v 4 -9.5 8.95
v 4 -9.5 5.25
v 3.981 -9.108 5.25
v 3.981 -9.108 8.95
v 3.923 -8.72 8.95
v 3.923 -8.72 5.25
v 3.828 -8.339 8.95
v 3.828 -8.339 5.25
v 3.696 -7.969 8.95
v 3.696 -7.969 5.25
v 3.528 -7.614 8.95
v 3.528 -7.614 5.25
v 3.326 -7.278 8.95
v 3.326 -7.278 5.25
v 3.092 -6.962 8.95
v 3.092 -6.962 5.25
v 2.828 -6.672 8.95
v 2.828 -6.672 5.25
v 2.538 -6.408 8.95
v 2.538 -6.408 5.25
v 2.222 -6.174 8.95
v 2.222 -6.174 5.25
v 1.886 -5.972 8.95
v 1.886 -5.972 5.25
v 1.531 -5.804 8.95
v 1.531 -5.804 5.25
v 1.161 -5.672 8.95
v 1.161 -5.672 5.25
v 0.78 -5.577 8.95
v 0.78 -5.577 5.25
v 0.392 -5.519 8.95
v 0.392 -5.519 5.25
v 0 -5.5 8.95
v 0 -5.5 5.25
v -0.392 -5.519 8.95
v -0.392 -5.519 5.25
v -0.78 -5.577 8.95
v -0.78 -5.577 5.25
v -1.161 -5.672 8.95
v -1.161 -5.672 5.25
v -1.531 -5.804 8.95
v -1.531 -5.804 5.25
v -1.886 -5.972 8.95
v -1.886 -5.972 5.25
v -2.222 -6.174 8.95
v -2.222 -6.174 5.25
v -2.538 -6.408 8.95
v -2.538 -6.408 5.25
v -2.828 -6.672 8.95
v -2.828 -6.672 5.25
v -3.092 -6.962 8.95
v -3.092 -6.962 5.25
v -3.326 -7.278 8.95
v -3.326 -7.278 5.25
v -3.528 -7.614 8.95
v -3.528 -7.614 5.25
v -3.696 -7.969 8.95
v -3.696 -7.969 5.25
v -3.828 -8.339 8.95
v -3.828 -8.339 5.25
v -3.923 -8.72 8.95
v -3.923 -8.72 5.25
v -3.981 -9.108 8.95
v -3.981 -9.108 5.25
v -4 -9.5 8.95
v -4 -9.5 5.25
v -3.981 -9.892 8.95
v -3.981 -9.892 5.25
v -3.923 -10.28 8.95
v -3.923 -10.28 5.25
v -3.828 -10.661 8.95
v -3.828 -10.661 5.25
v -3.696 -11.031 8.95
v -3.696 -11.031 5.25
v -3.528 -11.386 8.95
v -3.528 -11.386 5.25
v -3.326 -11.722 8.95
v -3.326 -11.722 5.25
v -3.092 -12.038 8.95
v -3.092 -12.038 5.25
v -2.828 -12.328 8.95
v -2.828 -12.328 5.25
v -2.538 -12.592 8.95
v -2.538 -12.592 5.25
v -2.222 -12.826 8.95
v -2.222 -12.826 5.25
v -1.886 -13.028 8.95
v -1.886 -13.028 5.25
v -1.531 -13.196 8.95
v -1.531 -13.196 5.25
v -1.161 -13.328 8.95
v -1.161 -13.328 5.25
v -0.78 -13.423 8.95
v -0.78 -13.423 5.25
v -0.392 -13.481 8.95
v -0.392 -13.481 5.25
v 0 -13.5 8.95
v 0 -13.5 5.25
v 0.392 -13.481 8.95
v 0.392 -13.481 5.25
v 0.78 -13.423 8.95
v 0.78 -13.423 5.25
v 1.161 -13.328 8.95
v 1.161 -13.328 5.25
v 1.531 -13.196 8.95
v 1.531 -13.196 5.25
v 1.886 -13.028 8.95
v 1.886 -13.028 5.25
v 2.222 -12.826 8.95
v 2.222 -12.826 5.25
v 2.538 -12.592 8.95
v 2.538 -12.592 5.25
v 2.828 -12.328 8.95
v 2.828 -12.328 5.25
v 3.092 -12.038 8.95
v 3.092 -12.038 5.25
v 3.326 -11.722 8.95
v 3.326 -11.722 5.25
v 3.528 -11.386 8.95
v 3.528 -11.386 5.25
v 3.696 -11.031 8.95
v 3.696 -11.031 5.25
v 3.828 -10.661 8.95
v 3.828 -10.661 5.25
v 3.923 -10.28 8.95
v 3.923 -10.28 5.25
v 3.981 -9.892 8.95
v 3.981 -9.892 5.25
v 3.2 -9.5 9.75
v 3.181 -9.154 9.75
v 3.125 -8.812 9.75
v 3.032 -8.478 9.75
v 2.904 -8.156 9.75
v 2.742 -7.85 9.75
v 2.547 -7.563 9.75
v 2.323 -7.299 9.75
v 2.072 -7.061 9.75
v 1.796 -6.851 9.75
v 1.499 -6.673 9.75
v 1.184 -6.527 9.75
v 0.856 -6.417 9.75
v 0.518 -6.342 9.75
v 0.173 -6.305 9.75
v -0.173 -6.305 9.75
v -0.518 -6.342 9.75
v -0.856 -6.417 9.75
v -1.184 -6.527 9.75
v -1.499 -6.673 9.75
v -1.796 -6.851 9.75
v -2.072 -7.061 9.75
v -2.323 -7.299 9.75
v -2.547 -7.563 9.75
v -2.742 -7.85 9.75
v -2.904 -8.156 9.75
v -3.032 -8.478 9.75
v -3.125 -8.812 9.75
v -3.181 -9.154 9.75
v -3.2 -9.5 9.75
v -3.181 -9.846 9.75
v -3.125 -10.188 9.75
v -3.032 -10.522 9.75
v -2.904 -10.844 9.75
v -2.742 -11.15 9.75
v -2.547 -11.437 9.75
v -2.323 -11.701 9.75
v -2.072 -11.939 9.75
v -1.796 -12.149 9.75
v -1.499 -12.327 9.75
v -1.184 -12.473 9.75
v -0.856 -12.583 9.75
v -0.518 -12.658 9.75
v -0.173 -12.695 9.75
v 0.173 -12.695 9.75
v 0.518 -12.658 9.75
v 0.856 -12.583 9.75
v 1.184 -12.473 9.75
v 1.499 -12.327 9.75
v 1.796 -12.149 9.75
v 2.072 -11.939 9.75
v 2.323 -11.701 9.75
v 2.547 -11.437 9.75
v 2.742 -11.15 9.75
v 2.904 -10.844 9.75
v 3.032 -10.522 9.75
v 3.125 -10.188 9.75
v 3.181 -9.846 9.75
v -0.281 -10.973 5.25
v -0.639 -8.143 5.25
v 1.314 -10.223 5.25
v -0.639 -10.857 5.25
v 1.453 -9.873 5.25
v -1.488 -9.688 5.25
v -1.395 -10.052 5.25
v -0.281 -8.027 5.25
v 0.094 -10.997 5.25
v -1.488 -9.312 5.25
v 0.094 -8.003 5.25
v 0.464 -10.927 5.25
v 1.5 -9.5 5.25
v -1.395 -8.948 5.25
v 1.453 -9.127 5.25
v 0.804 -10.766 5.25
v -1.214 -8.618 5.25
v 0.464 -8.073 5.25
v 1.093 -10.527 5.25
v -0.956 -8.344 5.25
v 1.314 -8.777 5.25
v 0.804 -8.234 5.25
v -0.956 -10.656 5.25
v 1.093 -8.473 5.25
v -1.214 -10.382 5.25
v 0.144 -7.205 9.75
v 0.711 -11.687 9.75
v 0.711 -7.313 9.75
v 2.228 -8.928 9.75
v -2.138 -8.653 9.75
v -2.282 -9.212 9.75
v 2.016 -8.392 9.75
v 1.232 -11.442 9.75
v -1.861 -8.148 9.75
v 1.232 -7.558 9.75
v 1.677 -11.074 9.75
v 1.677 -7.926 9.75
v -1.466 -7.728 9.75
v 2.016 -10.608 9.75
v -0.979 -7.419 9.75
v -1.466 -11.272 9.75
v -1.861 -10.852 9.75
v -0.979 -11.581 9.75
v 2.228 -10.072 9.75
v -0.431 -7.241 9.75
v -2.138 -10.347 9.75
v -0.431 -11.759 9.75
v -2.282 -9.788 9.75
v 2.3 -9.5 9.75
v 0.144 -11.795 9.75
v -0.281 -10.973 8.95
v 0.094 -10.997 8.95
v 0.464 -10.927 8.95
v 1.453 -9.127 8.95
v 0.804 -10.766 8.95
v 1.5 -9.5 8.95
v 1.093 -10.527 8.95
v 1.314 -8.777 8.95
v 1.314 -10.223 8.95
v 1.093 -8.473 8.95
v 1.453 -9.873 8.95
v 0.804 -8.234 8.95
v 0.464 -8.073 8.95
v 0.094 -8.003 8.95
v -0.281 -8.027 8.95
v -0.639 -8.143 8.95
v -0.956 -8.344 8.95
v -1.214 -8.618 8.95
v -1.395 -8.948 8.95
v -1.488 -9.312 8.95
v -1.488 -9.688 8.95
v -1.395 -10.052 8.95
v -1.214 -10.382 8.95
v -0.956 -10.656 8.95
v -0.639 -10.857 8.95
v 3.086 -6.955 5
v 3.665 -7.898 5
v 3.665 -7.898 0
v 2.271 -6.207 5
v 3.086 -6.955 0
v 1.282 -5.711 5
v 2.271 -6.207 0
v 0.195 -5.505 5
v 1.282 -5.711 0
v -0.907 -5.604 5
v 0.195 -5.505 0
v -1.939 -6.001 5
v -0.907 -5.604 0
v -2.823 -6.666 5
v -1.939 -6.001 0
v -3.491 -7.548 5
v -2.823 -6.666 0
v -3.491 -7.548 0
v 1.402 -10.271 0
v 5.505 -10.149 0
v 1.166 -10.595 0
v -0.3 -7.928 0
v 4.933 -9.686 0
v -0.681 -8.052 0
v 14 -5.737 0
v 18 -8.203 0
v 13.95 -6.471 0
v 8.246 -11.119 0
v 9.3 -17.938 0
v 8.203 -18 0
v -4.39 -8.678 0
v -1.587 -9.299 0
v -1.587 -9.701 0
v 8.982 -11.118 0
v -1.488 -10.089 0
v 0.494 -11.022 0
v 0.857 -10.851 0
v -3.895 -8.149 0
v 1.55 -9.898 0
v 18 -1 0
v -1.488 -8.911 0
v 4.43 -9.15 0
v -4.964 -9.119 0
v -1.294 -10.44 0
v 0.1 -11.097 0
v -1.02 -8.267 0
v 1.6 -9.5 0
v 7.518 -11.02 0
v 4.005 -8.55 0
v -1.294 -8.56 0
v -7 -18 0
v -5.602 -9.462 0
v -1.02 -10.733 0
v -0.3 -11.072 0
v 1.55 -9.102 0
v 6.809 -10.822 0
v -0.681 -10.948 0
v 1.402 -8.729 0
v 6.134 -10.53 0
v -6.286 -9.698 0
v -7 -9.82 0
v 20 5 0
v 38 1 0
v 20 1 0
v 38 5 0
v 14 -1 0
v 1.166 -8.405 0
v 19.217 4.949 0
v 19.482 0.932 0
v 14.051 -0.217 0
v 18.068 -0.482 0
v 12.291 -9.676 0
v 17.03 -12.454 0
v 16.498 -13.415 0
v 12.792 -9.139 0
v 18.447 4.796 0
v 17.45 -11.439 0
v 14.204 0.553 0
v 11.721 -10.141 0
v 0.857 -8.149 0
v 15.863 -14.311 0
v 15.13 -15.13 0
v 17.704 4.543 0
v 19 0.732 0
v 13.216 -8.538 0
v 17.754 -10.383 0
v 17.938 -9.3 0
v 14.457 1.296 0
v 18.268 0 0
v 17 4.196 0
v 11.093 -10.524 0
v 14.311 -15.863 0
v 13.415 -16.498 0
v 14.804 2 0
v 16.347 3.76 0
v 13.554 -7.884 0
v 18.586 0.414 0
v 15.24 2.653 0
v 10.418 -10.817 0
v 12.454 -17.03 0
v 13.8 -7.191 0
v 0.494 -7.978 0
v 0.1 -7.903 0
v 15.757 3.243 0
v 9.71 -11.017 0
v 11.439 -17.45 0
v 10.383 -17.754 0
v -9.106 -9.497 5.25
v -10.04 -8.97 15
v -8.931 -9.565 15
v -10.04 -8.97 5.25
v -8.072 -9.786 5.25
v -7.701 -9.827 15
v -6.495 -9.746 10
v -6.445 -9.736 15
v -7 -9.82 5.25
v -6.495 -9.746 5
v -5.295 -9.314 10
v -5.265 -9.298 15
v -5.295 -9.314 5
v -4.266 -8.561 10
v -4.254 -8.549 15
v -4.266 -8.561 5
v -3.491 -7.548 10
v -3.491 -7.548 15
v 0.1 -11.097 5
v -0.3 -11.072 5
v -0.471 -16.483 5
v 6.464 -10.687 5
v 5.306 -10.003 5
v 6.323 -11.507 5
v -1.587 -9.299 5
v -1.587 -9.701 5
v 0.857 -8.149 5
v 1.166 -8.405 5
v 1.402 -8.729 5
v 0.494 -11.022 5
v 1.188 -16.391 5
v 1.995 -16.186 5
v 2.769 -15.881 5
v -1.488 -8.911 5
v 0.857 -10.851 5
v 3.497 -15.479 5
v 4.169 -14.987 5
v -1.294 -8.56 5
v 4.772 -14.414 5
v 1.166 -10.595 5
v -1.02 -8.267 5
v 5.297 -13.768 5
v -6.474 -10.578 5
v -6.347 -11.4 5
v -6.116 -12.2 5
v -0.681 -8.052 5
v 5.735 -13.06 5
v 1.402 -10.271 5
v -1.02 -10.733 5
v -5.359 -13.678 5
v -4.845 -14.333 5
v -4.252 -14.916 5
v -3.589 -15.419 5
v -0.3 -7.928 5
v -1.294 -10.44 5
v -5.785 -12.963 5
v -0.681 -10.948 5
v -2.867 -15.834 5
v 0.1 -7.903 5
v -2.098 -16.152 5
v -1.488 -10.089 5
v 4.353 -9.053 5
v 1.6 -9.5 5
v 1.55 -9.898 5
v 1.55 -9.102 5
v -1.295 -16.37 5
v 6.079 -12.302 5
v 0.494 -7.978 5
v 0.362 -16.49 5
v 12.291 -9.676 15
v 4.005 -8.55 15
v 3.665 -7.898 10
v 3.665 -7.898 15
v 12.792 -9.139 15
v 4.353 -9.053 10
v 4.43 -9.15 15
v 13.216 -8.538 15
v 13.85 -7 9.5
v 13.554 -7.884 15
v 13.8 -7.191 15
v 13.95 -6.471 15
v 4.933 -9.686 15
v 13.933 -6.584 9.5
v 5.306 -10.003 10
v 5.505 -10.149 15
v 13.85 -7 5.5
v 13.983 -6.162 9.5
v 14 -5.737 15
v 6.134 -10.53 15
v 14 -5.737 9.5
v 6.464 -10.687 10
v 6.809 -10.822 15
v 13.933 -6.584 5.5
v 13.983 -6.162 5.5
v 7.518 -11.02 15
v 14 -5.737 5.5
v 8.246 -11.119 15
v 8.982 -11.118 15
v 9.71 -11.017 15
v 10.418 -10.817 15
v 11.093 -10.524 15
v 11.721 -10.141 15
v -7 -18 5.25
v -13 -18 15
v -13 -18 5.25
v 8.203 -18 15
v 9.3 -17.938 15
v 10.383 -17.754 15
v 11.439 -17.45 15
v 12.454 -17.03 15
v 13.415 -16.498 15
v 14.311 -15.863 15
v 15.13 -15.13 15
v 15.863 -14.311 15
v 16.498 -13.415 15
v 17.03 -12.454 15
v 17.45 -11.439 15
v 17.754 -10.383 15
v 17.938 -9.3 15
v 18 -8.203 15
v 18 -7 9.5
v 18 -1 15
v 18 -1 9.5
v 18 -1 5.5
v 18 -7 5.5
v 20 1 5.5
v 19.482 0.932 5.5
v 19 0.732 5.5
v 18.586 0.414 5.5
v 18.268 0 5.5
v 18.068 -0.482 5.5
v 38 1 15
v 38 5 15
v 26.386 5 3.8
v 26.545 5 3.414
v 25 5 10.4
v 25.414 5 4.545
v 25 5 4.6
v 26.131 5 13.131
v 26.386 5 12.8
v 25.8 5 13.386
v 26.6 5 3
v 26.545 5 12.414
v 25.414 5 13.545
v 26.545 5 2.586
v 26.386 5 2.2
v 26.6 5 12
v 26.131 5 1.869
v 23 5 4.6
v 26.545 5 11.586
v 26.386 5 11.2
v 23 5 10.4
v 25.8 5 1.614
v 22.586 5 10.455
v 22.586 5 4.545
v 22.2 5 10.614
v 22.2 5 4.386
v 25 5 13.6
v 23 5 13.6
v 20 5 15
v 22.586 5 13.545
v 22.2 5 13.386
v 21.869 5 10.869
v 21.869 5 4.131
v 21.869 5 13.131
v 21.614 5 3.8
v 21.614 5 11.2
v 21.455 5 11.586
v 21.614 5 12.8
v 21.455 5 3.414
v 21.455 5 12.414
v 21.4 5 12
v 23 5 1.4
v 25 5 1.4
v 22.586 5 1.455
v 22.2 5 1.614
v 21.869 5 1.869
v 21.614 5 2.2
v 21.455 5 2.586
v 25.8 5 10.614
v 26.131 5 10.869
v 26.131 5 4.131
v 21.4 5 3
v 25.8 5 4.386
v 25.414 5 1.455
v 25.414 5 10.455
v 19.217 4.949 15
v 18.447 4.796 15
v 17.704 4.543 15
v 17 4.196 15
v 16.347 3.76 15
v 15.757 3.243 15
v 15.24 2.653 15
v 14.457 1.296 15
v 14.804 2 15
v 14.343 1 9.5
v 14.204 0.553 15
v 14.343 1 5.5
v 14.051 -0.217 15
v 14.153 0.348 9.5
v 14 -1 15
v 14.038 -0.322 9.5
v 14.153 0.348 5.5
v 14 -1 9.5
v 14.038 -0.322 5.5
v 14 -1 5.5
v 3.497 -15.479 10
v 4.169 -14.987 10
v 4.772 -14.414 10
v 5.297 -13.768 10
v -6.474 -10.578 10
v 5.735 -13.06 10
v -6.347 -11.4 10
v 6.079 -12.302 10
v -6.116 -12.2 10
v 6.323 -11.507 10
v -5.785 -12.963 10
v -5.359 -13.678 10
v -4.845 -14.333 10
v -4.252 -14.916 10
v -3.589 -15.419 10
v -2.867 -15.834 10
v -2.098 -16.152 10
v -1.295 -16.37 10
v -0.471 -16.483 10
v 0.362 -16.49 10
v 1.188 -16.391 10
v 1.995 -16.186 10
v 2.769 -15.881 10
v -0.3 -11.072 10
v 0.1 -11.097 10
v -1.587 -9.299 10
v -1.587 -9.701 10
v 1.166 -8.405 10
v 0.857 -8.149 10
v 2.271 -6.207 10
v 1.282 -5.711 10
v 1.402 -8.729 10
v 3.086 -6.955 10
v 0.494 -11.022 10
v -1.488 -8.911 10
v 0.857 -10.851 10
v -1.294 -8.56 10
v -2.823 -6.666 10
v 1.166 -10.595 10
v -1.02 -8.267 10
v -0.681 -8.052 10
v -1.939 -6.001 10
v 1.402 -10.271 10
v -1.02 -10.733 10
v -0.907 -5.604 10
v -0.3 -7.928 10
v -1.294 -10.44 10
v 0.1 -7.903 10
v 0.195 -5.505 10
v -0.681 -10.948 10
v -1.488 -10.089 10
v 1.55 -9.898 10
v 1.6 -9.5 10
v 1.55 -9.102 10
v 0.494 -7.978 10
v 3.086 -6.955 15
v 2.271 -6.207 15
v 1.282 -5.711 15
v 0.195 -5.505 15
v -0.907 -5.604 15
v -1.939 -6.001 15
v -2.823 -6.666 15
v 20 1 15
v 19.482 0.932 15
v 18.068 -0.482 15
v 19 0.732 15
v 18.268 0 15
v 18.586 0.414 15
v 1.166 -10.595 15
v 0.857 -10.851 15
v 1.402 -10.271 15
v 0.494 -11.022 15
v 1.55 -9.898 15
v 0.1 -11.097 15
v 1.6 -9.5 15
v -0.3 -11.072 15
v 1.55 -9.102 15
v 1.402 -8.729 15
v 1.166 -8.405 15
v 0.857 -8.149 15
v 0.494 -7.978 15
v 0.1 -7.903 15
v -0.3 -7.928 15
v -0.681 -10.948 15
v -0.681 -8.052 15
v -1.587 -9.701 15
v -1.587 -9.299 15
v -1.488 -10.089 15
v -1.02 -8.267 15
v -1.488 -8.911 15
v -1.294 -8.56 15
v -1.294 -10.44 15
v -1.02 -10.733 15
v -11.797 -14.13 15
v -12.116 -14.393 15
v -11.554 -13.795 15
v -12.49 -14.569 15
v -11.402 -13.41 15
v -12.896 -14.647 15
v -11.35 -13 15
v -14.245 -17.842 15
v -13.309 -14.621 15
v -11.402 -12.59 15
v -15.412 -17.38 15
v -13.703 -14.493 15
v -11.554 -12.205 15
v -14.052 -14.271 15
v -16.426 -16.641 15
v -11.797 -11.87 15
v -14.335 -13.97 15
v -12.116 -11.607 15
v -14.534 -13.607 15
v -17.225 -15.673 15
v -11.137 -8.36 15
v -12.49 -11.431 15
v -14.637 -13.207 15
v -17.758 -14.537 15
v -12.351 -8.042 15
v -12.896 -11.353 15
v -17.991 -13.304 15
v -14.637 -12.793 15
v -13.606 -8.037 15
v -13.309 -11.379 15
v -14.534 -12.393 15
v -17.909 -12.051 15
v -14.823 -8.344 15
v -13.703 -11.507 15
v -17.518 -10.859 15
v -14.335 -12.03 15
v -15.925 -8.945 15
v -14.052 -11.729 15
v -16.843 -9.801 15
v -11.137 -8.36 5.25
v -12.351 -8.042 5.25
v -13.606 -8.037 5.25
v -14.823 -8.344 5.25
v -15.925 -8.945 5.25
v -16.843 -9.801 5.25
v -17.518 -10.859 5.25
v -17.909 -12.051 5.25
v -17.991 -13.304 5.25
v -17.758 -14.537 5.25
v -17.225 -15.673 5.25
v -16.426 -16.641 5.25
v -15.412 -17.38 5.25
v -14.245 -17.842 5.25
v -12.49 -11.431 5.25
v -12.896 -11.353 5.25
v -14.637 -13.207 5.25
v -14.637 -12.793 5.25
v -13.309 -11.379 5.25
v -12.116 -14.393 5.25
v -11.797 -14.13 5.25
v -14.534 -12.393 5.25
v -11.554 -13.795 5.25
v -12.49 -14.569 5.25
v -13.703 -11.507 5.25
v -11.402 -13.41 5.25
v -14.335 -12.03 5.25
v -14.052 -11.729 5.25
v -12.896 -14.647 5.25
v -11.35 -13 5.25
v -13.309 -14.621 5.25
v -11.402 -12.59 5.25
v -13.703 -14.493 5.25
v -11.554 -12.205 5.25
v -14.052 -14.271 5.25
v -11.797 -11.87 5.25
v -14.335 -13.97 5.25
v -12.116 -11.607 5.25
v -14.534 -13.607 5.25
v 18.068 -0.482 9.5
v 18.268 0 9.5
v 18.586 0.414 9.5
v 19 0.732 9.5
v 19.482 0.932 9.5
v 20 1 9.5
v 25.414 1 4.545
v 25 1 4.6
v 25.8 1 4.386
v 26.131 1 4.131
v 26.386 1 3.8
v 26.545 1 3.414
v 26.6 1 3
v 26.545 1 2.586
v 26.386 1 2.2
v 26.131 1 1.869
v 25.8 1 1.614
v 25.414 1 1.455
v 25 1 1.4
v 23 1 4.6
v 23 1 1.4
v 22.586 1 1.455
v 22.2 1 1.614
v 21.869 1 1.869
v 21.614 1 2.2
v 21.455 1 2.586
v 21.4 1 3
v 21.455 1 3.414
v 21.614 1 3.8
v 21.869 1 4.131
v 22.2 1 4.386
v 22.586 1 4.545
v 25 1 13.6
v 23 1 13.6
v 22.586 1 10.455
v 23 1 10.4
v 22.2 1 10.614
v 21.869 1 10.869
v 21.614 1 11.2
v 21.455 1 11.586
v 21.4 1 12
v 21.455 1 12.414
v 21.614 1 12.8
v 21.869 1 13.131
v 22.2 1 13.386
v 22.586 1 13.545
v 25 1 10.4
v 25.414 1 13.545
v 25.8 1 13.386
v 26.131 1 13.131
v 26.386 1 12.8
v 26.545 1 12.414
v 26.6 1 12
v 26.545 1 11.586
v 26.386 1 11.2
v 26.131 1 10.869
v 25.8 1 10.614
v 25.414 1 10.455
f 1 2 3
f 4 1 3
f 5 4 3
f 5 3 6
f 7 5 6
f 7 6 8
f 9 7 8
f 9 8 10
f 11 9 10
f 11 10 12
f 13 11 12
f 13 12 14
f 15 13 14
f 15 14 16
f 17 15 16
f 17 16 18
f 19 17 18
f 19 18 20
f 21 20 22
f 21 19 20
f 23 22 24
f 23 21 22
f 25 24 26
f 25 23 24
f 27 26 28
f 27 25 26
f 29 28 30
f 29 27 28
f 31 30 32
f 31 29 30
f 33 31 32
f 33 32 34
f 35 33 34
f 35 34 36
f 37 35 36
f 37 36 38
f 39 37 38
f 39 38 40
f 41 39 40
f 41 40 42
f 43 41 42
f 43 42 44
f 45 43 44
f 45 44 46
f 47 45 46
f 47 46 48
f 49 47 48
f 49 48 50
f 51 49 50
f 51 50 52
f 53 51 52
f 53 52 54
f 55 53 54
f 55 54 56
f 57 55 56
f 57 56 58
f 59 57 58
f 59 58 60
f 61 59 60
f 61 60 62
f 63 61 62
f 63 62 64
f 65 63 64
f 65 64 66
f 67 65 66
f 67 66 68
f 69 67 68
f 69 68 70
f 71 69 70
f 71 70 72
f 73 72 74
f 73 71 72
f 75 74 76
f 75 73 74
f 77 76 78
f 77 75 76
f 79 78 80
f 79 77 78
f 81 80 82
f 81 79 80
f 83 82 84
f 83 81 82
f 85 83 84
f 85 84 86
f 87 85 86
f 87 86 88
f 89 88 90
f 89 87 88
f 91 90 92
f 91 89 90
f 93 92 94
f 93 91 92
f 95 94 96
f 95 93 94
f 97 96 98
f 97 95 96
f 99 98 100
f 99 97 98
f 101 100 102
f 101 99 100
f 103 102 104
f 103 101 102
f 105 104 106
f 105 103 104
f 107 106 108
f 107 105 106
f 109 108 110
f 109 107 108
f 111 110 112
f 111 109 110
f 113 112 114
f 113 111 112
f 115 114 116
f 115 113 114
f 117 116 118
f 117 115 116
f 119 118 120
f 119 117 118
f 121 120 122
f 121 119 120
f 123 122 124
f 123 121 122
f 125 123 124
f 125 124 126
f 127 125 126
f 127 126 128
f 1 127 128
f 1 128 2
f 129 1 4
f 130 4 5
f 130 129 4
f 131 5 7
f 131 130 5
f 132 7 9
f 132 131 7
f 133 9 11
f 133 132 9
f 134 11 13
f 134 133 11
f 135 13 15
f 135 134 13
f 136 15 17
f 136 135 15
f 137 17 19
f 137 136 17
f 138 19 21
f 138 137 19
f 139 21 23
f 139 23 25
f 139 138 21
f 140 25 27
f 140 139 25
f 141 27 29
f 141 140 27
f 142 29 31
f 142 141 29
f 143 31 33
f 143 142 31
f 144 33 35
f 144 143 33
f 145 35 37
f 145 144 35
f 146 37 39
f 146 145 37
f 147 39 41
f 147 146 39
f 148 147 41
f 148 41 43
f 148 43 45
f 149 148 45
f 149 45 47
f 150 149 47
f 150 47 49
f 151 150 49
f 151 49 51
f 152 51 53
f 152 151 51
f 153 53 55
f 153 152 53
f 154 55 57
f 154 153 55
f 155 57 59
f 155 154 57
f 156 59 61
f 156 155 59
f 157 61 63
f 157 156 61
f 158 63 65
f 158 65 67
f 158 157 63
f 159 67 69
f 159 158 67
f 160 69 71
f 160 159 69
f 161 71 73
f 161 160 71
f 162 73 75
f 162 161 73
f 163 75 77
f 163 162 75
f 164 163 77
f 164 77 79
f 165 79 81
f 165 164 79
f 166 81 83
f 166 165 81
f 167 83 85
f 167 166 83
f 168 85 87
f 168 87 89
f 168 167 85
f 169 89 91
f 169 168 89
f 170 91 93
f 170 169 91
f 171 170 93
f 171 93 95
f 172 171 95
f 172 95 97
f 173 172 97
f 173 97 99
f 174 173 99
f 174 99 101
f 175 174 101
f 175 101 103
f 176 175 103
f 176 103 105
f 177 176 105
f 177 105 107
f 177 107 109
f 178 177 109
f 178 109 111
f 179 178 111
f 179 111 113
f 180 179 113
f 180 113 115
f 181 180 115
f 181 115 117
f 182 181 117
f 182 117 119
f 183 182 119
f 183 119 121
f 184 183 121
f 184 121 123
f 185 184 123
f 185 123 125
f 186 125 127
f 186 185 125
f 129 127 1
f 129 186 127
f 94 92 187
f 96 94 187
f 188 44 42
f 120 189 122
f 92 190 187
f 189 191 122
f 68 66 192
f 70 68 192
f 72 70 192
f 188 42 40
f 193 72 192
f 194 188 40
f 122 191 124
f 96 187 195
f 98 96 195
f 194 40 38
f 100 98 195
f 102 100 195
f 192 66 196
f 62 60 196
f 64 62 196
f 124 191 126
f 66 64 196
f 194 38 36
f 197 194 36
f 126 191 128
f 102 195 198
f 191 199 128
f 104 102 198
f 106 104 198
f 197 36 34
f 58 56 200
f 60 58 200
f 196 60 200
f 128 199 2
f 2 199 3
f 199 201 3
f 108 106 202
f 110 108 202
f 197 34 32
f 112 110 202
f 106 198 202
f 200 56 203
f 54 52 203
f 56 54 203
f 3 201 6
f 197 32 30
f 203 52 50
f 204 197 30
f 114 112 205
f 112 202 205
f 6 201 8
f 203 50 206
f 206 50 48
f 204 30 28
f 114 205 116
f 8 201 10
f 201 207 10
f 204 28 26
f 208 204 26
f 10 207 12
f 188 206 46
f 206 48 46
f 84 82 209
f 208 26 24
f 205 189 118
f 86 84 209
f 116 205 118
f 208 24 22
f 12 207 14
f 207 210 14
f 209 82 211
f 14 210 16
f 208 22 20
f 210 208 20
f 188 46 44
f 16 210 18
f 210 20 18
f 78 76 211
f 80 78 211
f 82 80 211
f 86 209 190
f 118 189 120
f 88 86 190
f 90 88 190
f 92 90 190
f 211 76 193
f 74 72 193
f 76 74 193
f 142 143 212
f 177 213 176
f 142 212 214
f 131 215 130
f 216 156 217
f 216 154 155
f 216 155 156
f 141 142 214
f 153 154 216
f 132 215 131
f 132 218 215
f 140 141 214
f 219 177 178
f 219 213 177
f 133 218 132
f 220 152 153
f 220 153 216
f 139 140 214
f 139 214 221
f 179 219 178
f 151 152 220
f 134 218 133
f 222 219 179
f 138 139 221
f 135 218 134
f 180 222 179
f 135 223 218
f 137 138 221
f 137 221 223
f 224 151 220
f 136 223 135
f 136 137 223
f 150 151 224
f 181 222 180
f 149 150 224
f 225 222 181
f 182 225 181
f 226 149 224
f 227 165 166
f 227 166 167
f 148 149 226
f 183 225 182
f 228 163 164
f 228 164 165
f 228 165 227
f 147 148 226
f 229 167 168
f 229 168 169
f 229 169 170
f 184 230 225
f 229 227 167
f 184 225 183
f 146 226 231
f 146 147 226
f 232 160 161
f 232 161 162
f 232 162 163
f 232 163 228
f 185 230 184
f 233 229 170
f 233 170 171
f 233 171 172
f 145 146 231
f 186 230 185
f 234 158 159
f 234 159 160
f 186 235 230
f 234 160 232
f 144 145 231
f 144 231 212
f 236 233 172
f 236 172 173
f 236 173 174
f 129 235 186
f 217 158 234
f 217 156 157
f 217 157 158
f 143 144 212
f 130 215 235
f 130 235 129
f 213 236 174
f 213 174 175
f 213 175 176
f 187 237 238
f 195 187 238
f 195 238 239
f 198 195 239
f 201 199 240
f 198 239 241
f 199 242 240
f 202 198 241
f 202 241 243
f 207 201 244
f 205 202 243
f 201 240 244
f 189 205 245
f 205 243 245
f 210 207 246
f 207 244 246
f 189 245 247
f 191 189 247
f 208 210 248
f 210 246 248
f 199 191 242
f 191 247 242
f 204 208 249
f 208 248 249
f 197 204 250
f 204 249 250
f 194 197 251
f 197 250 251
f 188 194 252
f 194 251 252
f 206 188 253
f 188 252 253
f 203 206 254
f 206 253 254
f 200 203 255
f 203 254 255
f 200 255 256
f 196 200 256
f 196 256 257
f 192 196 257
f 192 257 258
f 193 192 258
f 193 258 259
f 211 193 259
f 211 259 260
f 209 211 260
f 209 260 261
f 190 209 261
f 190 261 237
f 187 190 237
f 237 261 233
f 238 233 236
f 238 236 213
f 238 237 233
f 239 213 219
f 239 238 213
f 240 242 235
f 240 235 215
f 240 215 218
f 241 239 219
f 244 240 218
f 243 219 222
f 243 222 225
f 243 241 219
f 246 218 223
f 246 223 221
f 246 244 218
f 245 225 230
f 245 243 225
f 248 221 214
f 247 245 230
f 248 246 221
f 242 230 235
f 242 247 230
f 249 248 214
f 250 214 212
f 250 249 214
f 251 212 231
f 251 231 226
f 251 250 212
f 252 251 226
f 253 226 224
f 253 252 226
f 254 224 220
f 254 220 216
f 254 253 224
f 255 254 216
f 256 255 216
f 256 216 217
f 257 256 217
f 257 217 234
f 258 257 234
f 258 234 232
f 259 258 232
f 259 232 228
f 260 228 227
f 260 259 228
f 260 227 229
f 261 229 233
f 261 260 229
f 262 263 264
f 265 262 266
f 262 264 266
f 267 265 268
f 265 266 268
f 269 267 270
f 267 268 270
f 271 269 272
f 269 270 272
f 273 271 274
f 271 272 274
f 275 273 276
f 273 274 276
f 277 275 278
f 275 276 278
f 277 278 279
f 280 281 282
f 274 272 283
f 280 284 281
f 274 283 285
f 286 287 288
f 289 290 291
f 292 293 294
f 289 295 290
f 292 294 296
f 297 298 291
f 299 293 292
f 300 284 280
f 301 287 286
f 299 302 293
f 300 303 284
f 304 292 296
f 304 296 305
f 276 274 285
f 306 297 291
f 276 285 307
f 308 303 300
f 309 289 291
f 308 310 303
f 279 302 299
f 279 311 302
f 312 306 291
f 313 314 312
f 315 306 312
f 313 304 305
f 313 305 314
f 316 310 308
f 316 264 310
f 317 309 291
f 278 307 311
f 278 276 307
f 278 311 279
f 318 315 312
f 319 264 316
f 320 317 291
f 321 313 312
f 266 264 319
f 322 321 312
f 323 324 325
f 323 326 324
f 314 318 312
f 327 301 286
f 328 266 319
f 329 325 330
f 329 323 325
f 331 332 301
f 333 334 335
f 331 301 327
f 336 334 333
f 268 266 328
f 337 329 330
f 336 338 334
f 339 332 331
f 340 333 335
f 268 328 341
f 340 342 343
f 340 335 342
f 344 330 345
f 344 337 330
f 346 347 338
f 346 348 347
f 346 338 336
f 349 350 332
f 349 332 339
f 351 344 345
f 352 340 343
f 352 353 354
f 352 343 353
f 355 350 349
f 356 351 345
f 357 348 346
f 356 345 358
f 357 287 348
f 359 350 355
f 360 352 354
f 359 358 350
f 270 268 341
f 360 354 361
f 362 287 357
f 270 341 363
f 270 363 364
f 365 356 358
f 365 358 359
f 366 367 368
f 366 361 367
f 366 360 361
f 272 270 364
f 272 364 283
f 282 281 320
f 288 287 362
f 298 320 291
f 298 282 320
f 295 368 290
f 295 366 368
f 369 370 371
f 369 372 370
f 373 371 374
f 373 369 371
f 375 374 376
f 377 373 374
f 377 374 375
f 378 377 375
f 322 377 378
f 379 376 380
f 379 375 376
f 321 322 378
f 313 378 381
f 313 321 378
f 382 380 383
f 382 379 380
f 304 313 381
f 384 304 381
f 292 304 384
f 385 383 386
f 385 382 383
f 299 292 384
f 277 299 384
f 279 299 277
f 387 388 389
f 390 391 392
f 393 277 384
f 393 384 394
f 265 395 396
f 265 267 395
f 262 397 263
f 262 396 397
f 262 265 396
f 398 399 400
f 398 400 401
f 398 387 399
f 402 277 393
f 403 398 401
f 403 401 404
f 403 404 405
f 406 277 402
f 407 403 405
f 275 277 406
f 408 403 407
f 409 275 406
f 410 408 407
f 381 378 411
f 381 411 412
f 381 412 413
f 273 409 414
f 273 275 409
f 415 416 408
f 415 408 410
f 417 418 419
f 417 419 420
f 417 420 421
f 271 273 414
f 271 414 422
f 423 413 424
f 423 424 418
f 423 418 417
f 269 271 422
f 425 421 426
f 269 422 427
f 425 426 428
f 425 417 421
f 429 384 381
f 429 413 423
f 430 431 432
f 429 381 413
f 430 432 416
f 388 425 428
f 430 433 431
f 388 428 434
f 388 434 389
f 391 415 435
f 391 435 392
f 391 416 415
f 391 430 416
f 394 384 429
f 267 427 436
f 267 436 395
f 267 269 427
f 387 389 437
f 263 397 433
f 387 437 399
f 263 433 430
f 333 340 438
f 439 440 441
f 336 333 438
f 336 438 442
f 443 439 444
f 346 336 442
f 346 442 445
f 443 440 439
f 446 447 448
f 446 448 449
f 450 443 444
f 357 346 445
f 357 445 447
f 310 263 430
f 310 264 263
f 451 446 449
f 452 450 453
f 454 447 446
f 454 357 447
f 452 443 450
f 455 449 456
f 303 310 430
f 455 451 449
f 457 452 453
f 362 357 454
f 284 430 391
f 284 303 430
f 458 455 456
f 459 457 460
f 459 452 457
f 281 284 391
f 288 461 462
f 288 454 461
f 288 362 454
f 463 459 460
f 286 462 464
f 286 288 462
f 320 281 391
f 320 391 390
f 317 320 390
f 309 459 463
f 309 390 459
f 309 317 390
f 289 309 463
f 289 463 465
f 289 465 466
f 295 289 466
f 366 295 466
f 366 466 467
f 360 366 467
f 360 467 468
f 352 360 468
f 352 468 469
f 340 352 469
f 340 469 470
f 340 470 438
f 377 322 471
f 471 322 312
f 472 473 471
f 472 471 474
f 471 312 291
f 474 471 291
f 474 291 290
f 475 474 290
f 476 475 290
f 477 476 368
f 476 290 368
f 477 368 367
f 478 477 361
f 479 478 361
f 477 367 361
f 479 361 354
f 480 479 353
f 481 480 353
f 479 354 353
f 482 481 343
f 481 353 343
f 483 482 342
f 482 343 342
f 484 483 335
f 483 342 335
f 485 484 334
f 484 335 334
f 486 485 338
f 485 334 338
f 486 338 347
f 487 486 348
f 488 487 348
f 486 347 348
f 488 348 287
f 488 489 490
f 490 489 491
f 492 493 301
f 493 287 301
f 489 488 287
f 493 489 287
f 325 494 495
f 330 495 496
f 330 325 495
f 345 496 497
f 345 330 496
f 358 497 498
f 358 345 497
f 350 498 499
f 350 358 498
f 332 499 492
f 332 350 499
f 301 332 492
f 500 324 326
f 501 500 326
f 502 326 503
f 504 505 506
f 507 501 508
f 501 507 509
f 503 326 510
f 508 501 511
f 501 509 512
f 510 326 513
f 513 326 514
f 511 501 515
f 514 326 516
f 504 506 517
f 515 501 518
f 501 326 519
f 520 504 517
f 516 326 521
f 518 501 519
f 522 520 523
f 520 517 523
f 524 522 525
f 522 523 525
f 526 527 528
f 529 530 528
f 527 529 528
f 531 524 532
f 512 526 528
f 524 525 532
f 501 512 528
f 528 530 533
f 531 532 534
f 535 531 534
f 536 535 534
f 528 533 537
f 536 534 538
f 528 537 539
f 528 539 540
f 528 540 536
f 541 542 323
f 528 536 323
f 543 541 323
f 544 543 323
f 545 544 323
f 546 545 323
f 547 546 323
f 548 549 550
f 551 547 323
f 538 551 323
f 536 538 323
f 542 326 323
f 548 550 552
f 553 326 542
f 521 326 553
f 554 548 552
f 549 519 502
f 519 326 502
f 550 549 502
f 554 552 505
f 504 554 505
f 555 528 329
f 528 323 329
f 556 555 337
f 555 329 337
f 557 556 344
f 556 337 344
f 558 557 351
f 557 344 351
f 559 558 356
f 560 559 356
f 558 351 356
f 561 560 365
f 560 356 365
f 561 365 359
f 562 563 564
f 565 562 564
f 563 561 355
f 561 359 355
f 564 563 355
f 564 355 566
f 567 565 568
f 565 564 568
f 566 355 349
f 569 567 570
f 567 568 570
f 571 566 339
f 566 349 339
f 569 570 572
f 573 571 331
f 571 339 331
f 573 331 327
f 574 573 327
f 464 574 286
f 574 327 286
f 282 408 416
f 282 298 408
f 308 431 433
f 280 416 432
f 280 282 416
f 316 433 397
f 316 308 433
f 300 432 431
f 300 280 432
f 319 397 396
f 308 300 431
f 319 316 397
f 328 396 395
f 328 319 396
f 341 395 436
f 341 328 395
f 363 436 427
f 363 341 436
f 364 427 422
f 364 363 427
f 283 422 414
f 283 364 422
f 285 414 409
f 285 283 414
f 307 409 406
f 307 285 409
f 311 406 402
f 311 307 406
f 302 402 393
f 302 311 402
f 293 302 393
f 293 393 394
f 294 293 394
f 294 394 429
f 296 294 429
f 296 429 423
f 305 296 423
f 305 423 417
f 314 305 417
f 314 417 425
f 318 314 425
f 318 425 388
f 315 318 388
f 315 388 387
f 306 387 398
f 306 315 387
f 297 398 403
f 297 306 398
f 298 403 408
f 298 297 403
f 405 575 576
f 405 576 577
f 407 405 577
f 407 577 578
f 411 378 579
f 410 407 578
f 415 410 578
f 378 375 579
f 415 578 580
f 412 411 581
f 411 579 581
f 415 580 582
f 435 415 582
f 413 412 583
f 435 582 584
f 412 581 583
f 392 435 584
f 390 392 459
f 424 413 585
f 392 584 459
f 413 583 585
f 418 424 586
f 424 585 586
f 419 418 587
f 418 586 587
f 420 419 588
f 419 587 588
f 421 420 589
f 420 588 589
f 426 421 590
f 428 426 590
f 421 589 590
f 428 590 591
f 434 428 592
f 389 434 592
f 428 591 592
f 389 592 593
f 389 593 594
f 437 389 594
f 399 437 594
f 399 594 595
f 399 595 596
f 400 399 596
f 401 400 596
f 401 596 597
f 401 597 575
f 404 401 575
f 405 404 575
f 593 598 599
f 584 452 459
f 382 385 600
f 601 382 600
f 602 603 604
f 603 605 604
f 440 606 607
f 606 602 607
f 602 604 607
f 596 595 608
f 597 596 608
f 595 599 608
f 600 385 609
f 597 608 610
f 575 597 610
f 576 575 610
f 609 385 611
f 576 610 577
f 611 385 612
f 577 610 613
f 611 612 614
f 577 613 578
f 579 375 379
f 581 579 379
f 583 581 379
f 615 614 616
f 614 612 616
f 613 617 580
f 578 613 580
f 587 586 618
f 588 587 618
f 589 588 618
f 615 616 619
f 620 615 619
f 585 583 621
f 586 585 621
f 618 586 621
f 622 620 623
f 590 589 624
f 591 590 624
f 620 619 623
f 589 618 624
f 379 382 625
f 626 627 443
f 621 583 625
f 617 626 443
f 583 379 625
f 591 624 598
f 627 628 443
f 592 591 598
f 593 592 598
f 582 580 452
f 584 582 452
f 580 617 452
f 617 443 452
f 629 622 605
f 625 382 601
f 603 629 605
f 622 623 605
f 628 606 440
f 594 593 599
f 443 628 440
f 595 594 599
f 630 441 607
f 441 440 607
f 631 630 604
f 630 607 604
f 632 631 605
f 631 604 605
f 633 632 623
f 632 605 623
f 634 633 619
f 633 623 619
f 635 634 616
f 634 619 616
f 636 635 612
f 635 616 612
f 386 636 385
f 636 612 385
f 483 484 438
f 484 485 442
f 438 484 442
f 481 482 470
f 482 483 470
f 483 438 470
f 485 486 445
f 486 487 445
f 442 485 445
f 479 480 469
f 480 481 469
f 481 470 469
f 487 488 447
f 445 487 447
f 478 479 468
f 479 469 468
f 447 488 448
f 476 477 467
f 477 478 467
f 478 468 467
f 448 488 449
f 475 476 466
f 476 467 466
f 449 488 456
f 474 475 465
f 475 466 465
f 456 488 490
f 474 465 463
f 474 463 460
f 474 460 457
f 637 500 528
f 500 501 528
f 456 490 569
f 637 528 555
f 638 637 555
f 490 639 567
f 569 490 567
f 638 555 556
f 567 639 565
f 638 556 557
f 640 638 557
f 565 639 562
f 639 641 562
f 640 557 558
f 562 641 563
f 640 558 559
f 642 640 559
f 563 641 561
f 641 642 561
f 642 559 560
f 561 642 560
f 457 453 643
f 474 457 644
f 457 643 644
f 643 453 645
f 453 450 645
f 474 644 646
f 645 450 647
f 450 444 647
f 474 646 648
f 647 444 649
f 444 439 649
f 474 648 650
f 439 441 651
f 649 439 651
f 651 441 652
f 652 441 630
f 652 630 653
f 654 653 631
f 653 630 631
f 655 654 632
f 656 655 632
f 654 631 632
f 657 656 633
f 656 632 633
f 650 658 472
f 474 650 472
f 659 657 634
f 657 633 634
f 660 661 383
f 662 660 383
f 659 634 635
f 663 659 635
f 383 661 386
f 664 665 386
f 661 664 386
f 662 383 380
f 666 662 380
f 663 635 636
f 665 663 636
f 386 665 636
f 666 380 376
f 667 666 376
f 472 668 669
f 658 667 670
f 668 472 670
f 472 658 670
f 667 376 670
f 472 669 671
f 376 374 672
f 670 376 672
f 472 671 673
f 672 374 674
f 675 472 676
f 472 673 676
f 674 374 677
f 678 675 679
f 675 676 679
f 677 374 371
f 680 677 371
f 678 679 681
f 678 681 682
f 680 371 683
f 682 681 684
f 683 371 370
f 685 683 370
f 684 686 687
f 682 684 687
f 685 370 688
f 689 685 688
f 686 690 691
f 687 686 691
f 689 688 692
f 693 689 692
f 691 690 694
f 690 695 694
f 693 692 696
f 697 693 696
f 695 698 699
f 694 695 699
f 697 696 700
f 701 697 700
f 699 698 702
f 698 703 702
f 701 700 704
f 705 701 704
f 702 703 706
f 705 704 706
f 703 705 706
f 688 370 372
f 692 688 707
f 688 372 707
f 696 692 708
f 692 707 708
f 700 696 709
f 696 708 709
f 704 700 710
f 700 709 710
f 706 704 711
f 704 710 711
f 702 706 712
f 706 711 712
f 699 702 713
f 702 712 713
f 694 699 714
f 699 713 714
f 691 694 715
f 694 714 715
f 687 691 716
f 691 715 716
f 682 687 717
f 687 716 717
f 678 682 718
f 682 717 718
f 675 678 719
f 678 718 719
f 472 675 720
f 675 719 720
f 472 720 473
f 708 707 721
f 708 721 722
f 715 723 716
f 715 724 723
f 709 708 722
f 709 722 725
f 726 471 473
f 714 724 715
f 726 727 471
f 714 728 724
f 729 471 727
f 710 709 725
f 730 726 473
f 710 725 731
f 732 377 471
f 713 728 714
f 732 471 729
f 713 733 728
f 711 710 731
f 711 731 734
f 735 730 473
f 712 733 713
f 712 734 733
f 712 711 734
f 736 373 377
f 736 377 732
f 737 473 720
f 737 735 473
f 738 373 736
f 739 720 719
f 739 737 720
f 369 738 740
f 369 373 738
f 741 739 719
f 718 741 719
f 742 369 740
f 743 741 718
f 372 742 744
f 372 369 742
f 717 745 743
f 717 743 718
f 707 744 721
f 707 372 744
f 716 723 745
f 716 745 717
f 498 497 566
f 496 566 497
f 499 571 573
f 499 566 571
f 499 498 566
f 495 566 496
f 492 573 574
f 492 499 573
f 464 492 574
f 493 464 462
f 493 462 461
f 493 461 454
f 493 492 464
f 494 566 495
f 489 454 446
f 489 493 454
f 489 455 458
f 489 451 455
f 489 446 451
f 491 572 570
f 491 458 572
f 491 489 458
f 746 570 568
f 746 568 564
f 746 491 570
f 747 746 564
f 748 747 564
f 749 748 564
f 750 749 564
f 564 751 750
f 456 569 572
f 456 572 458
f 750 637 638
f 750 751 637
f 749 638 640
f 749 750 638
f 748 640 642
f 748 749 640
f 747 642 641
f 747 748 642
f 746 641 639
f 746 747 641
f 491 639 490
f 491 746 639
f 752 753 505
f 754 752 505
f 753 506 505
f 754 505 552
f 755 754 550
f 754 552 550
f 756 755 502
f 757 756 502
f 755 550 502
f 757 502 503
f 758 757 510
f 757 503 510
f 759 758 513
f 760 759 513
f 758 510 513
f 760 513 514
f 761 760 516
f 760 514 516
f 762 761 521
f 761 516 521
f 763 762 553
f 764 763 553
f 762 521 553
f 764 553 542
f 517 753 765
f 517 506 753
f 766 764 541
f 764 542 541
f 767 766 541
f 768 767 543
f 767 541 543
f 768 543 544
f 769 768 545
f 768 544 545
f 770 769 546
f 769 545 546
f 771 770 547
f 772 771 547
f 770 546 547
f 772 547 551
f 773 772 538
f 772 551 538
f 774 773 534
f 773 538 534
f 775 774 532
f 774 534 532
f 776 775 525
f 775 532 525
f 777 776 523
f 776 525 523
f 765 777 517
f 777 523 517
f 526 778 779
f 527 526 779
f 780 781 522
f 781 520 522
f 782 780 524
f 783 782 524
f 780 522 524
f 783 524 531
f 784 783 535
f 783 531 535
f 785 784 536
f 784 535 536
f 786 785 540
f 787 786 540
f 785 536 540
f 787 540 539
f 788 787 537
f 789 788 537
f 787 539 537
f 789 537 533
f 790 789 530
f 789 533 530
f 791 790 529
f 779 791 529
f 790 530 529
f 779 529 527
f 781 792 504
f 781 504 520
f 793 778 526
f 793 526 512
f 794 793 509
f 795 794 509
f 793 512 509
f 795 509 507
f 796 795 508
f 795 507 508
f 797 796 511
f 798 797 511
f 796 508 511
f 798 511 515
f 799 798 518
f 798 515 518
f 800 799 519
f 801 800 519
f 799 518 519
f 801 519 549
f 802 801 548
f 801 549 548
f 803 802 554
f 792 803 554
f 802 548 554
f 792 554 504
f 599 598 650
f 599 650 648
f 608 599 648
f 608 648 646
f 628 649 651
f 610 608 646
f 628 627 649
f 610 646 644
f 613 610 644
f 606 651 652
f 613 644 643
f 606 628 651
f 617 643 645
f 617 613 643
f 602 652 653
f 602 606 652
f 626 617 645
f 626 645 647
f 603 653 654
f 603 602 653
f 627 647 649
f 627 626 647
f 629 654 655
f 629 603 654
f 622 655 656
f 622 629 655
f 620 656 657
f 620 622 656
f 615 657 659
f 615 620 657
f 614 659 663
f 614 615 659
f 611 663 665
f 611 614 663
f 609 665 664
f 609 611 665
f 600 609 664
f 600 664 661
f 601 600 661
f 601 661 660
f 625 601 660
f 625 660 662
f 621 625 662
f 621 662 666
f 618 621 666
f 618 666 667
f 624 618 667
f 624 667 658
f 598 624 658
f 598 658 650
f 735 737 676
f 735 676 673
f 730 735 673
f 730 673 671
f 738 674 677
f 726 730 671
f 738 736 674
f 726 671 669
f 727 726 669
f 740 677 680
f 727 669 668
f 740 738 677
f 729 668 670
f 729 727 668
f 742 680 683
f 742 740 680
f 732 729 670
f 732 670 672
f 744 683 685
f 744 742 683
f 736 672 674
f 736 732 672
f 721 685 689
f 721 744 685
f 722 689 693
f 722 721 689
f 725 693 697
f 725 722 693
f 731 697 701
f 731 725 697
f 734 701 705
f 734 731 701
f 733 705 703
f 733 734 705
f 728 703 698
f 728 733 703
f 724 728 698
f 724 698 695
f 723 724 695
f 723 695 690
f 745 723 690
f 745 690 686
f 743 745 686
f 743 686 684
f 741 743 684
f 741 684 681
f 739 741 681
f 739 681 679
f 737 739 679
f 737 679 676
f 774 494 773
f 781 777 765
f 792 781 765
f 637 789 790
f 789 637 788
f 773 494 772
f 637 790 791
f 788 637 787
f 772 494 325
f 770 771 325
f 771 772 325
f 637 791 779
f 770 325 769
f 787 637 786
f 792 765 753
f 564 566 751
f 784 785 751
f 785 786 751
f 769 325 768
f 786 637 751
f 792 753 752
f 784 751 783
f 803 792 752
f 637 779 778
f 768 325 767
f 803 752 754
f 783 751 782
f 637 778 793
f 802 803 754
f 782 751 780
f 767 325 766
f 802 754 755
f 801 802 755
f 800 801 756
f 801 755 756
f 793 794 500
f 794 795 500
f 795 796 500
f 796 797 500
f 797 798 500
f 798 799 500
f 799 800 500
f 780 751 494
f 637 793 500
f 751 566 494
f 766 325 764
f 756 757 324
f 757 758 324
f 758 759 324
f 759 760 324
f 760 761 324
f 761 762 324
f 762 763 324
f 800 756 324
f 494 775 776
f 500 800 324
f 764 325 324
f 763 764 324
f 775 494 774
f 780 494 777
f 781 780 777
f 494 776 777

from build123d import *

# Parameters (mm, degrees)
CYLINDER_R           = 6.5
CYLINDER_DEPTH       = 5
PAD001_DEPTH         = 5.25
SKETCH_R             = 1.6
SKETCH_R_2           = 1.65
PAD_DEPTH            = 15
POCKET_DEPTH         = 5
SKETCH003_W          = 8
SKETCH003_H          = 4
POCKET001_DEPTH      = 36.001
POCKET001_DEPTH_BACK = -20.001
CYLINDER001_R        = 1.5
CYLINDER001_DEPTH    = 4.5
CYLINDER002_R        = 4
CYLINDER002_DEPTH    = 4.5
CHAMFER_SIZE         = 0.8


with BuildPart() as rodamiento:
    # Cylinder → Cylinder (new body)
    with BuildSketch(Plane(origin=(0, -10, 5), x_dir=(1, 0, 0), z_dir=(0, 0, 1))):
        Circle(CYLINDER_R)
    extrude(amount=CYLINDER_DEPTH)


with BuildPart() as bisagra:
    # Sketch001 → Pad001 (new body)
    with BuildSketch(Plane.XY):
        with BuildLine():
            ThreePointArc((-13, -7), (-19, -13.000015), (-12.99997, -19))
            Line((-7, -19), (-12.99997, -19))
            Line((-7, -7), (-7, -19))
            Line((-13, -7), (-7, -7))
        make_face()
    extrude(amount=PAD001_DEPTH)


with BuildPart() as pocket001:
    # Sketch → Pad (new body)
    with BuildSketch(Plane.XY):
        with BuildLine():
            ThreePointArc((-10.040445, -8.969983), (-17.75132, -11.442772), (-13, -18))
            Line((-13, -18), (8.202725, -18))
            ThreePointArc((8.202725, -18), (15.130445, -15.130444), (18, -8.202724))
            Line((18, -8.202724), (18, -1))
            ThreePointArc((20, 1), (18.585786, 0.414214), (18, -1))
            Line((20, 1), (38, 1))
            Line((38, 1), (38, 5))
            Line((38, 5), (20.000029, 5))
            ThreePointArc((20.000029, 5), (15.757369, 3.24265), (14, -1.000002))
            Line((14, -1.000002), (14, -5.737497))
            ThreePointArc((3.665093, -7.897784), (9.710254, -11.016634), (14, -5.737497))
            ThreePointArc((3.665093, -7.897784), (0.195225, -5.504767), (-3.491422, -7.548085))
            ThreePointArc((-10.040445, -8.969983), (-6.445357, -9.735554), (-3.491422, -7.548085))
        make_face()
        with Locations((0, -9.5)):
            Circle(SKETCH_R, mode=Mode.SUBTRACT)
        with Locations((-13, -13)):
            Circle(SKETCH_R_2, mode=Mode.SUBTRACT)
    extrude(amount=PAD_DEPTH)

    # Cut: cut bisagra
    add(bisagra.part, mode=Mode.SUBTRACT)

    # Cut001: cut rodamiento
    add(rodamiento.part, mode=Mode.SUBTRACT)

    # Sketch002 → Pocket (cut)
    with BuildSketch(Plane(origin=(0, 5, 0), x_dir=(-1, 0, 0), z_dir=(0, 1, 0))):
        with BuildLine():
            ThreePointArc((-25, 13.6), (-26.6, 12), (-25, 10.4))
            Line((-25, 10.4), (-23, 10.4))
            ThreePointArc((-23, 10.4), (-21.4, 12), (-23, 13.6))
            Line((-25, 13.6), (-23, 13.6))
        make_face()
        with BuildLine():
            ThreePointArc((-25, 4.6), (-26.6, 3), (-25, 1.4))
            Line((-25, 1.4), (-23, 1.4))
            ThreePointArc((-23, 1.4), (-21.4, 3), (-23, 4.6))
            Line((-25, 4.6), (-23, 4.6))
        make_face()
    extrude(amount=-POCKET_DEPTH, mode=Mode.SUBTRACT)

    # Sketch003 → Pocket001 (cut, two sides)
    with BuildSketch(Plane.YZ.offset(18)) as pocket001_sk:
        with Locations((-3, 7.5)):
            Rectangle(SKETCH003_W, SKETCH003_H)
    extrude(amount=-POCKET001_DEPTH, mode=Mode.SUBTRACT)
    extrude(pocket001_sk.sketch, amount=-POCKET001_DEPTH_BACK, mode=Mode.SUBTRACT)


with BuildPart() as cilindro:
    # Cylinder001 → Cylinder001 (new body)
    with BuildSketch(Plane(origin=(0, -9.5, 5.25), x_dir=(1, 0, 0), z_dir=(0, 0, 1))):
        Circle(CYLINDER001_R)
    extrude(amount=CYLINDER001_DEPTH)


with BuildPart() as chamfer_body:
    # Cylinder002 → Cylinder002 (new body)
    with BuildSketch(Plane(origin=(0, -9.5, 5.25), x_dir=(1, 0, 0), z_dir=(0, 0, 1))):
        Circle(CYLINDER002_R)
    extrude(amount=CYLINDER002_DEPTH)

    # Cut002: cut Cilindro
    add(cilindro.part, mode=Mode.SUBTRACT)

    # Chamfer
    chamfer_edges = [chamfer_body.edges().sort_by_distance(p)[0] for p in [
        (-4, -9.5, 9.75),
        (-1.5, -9.5, 9.75),
    ]]
    chamfer(chamfer_edges, length=CHAMFER_SIZE)


solid = Compound([pocket001.part, chamfer_body.part])
